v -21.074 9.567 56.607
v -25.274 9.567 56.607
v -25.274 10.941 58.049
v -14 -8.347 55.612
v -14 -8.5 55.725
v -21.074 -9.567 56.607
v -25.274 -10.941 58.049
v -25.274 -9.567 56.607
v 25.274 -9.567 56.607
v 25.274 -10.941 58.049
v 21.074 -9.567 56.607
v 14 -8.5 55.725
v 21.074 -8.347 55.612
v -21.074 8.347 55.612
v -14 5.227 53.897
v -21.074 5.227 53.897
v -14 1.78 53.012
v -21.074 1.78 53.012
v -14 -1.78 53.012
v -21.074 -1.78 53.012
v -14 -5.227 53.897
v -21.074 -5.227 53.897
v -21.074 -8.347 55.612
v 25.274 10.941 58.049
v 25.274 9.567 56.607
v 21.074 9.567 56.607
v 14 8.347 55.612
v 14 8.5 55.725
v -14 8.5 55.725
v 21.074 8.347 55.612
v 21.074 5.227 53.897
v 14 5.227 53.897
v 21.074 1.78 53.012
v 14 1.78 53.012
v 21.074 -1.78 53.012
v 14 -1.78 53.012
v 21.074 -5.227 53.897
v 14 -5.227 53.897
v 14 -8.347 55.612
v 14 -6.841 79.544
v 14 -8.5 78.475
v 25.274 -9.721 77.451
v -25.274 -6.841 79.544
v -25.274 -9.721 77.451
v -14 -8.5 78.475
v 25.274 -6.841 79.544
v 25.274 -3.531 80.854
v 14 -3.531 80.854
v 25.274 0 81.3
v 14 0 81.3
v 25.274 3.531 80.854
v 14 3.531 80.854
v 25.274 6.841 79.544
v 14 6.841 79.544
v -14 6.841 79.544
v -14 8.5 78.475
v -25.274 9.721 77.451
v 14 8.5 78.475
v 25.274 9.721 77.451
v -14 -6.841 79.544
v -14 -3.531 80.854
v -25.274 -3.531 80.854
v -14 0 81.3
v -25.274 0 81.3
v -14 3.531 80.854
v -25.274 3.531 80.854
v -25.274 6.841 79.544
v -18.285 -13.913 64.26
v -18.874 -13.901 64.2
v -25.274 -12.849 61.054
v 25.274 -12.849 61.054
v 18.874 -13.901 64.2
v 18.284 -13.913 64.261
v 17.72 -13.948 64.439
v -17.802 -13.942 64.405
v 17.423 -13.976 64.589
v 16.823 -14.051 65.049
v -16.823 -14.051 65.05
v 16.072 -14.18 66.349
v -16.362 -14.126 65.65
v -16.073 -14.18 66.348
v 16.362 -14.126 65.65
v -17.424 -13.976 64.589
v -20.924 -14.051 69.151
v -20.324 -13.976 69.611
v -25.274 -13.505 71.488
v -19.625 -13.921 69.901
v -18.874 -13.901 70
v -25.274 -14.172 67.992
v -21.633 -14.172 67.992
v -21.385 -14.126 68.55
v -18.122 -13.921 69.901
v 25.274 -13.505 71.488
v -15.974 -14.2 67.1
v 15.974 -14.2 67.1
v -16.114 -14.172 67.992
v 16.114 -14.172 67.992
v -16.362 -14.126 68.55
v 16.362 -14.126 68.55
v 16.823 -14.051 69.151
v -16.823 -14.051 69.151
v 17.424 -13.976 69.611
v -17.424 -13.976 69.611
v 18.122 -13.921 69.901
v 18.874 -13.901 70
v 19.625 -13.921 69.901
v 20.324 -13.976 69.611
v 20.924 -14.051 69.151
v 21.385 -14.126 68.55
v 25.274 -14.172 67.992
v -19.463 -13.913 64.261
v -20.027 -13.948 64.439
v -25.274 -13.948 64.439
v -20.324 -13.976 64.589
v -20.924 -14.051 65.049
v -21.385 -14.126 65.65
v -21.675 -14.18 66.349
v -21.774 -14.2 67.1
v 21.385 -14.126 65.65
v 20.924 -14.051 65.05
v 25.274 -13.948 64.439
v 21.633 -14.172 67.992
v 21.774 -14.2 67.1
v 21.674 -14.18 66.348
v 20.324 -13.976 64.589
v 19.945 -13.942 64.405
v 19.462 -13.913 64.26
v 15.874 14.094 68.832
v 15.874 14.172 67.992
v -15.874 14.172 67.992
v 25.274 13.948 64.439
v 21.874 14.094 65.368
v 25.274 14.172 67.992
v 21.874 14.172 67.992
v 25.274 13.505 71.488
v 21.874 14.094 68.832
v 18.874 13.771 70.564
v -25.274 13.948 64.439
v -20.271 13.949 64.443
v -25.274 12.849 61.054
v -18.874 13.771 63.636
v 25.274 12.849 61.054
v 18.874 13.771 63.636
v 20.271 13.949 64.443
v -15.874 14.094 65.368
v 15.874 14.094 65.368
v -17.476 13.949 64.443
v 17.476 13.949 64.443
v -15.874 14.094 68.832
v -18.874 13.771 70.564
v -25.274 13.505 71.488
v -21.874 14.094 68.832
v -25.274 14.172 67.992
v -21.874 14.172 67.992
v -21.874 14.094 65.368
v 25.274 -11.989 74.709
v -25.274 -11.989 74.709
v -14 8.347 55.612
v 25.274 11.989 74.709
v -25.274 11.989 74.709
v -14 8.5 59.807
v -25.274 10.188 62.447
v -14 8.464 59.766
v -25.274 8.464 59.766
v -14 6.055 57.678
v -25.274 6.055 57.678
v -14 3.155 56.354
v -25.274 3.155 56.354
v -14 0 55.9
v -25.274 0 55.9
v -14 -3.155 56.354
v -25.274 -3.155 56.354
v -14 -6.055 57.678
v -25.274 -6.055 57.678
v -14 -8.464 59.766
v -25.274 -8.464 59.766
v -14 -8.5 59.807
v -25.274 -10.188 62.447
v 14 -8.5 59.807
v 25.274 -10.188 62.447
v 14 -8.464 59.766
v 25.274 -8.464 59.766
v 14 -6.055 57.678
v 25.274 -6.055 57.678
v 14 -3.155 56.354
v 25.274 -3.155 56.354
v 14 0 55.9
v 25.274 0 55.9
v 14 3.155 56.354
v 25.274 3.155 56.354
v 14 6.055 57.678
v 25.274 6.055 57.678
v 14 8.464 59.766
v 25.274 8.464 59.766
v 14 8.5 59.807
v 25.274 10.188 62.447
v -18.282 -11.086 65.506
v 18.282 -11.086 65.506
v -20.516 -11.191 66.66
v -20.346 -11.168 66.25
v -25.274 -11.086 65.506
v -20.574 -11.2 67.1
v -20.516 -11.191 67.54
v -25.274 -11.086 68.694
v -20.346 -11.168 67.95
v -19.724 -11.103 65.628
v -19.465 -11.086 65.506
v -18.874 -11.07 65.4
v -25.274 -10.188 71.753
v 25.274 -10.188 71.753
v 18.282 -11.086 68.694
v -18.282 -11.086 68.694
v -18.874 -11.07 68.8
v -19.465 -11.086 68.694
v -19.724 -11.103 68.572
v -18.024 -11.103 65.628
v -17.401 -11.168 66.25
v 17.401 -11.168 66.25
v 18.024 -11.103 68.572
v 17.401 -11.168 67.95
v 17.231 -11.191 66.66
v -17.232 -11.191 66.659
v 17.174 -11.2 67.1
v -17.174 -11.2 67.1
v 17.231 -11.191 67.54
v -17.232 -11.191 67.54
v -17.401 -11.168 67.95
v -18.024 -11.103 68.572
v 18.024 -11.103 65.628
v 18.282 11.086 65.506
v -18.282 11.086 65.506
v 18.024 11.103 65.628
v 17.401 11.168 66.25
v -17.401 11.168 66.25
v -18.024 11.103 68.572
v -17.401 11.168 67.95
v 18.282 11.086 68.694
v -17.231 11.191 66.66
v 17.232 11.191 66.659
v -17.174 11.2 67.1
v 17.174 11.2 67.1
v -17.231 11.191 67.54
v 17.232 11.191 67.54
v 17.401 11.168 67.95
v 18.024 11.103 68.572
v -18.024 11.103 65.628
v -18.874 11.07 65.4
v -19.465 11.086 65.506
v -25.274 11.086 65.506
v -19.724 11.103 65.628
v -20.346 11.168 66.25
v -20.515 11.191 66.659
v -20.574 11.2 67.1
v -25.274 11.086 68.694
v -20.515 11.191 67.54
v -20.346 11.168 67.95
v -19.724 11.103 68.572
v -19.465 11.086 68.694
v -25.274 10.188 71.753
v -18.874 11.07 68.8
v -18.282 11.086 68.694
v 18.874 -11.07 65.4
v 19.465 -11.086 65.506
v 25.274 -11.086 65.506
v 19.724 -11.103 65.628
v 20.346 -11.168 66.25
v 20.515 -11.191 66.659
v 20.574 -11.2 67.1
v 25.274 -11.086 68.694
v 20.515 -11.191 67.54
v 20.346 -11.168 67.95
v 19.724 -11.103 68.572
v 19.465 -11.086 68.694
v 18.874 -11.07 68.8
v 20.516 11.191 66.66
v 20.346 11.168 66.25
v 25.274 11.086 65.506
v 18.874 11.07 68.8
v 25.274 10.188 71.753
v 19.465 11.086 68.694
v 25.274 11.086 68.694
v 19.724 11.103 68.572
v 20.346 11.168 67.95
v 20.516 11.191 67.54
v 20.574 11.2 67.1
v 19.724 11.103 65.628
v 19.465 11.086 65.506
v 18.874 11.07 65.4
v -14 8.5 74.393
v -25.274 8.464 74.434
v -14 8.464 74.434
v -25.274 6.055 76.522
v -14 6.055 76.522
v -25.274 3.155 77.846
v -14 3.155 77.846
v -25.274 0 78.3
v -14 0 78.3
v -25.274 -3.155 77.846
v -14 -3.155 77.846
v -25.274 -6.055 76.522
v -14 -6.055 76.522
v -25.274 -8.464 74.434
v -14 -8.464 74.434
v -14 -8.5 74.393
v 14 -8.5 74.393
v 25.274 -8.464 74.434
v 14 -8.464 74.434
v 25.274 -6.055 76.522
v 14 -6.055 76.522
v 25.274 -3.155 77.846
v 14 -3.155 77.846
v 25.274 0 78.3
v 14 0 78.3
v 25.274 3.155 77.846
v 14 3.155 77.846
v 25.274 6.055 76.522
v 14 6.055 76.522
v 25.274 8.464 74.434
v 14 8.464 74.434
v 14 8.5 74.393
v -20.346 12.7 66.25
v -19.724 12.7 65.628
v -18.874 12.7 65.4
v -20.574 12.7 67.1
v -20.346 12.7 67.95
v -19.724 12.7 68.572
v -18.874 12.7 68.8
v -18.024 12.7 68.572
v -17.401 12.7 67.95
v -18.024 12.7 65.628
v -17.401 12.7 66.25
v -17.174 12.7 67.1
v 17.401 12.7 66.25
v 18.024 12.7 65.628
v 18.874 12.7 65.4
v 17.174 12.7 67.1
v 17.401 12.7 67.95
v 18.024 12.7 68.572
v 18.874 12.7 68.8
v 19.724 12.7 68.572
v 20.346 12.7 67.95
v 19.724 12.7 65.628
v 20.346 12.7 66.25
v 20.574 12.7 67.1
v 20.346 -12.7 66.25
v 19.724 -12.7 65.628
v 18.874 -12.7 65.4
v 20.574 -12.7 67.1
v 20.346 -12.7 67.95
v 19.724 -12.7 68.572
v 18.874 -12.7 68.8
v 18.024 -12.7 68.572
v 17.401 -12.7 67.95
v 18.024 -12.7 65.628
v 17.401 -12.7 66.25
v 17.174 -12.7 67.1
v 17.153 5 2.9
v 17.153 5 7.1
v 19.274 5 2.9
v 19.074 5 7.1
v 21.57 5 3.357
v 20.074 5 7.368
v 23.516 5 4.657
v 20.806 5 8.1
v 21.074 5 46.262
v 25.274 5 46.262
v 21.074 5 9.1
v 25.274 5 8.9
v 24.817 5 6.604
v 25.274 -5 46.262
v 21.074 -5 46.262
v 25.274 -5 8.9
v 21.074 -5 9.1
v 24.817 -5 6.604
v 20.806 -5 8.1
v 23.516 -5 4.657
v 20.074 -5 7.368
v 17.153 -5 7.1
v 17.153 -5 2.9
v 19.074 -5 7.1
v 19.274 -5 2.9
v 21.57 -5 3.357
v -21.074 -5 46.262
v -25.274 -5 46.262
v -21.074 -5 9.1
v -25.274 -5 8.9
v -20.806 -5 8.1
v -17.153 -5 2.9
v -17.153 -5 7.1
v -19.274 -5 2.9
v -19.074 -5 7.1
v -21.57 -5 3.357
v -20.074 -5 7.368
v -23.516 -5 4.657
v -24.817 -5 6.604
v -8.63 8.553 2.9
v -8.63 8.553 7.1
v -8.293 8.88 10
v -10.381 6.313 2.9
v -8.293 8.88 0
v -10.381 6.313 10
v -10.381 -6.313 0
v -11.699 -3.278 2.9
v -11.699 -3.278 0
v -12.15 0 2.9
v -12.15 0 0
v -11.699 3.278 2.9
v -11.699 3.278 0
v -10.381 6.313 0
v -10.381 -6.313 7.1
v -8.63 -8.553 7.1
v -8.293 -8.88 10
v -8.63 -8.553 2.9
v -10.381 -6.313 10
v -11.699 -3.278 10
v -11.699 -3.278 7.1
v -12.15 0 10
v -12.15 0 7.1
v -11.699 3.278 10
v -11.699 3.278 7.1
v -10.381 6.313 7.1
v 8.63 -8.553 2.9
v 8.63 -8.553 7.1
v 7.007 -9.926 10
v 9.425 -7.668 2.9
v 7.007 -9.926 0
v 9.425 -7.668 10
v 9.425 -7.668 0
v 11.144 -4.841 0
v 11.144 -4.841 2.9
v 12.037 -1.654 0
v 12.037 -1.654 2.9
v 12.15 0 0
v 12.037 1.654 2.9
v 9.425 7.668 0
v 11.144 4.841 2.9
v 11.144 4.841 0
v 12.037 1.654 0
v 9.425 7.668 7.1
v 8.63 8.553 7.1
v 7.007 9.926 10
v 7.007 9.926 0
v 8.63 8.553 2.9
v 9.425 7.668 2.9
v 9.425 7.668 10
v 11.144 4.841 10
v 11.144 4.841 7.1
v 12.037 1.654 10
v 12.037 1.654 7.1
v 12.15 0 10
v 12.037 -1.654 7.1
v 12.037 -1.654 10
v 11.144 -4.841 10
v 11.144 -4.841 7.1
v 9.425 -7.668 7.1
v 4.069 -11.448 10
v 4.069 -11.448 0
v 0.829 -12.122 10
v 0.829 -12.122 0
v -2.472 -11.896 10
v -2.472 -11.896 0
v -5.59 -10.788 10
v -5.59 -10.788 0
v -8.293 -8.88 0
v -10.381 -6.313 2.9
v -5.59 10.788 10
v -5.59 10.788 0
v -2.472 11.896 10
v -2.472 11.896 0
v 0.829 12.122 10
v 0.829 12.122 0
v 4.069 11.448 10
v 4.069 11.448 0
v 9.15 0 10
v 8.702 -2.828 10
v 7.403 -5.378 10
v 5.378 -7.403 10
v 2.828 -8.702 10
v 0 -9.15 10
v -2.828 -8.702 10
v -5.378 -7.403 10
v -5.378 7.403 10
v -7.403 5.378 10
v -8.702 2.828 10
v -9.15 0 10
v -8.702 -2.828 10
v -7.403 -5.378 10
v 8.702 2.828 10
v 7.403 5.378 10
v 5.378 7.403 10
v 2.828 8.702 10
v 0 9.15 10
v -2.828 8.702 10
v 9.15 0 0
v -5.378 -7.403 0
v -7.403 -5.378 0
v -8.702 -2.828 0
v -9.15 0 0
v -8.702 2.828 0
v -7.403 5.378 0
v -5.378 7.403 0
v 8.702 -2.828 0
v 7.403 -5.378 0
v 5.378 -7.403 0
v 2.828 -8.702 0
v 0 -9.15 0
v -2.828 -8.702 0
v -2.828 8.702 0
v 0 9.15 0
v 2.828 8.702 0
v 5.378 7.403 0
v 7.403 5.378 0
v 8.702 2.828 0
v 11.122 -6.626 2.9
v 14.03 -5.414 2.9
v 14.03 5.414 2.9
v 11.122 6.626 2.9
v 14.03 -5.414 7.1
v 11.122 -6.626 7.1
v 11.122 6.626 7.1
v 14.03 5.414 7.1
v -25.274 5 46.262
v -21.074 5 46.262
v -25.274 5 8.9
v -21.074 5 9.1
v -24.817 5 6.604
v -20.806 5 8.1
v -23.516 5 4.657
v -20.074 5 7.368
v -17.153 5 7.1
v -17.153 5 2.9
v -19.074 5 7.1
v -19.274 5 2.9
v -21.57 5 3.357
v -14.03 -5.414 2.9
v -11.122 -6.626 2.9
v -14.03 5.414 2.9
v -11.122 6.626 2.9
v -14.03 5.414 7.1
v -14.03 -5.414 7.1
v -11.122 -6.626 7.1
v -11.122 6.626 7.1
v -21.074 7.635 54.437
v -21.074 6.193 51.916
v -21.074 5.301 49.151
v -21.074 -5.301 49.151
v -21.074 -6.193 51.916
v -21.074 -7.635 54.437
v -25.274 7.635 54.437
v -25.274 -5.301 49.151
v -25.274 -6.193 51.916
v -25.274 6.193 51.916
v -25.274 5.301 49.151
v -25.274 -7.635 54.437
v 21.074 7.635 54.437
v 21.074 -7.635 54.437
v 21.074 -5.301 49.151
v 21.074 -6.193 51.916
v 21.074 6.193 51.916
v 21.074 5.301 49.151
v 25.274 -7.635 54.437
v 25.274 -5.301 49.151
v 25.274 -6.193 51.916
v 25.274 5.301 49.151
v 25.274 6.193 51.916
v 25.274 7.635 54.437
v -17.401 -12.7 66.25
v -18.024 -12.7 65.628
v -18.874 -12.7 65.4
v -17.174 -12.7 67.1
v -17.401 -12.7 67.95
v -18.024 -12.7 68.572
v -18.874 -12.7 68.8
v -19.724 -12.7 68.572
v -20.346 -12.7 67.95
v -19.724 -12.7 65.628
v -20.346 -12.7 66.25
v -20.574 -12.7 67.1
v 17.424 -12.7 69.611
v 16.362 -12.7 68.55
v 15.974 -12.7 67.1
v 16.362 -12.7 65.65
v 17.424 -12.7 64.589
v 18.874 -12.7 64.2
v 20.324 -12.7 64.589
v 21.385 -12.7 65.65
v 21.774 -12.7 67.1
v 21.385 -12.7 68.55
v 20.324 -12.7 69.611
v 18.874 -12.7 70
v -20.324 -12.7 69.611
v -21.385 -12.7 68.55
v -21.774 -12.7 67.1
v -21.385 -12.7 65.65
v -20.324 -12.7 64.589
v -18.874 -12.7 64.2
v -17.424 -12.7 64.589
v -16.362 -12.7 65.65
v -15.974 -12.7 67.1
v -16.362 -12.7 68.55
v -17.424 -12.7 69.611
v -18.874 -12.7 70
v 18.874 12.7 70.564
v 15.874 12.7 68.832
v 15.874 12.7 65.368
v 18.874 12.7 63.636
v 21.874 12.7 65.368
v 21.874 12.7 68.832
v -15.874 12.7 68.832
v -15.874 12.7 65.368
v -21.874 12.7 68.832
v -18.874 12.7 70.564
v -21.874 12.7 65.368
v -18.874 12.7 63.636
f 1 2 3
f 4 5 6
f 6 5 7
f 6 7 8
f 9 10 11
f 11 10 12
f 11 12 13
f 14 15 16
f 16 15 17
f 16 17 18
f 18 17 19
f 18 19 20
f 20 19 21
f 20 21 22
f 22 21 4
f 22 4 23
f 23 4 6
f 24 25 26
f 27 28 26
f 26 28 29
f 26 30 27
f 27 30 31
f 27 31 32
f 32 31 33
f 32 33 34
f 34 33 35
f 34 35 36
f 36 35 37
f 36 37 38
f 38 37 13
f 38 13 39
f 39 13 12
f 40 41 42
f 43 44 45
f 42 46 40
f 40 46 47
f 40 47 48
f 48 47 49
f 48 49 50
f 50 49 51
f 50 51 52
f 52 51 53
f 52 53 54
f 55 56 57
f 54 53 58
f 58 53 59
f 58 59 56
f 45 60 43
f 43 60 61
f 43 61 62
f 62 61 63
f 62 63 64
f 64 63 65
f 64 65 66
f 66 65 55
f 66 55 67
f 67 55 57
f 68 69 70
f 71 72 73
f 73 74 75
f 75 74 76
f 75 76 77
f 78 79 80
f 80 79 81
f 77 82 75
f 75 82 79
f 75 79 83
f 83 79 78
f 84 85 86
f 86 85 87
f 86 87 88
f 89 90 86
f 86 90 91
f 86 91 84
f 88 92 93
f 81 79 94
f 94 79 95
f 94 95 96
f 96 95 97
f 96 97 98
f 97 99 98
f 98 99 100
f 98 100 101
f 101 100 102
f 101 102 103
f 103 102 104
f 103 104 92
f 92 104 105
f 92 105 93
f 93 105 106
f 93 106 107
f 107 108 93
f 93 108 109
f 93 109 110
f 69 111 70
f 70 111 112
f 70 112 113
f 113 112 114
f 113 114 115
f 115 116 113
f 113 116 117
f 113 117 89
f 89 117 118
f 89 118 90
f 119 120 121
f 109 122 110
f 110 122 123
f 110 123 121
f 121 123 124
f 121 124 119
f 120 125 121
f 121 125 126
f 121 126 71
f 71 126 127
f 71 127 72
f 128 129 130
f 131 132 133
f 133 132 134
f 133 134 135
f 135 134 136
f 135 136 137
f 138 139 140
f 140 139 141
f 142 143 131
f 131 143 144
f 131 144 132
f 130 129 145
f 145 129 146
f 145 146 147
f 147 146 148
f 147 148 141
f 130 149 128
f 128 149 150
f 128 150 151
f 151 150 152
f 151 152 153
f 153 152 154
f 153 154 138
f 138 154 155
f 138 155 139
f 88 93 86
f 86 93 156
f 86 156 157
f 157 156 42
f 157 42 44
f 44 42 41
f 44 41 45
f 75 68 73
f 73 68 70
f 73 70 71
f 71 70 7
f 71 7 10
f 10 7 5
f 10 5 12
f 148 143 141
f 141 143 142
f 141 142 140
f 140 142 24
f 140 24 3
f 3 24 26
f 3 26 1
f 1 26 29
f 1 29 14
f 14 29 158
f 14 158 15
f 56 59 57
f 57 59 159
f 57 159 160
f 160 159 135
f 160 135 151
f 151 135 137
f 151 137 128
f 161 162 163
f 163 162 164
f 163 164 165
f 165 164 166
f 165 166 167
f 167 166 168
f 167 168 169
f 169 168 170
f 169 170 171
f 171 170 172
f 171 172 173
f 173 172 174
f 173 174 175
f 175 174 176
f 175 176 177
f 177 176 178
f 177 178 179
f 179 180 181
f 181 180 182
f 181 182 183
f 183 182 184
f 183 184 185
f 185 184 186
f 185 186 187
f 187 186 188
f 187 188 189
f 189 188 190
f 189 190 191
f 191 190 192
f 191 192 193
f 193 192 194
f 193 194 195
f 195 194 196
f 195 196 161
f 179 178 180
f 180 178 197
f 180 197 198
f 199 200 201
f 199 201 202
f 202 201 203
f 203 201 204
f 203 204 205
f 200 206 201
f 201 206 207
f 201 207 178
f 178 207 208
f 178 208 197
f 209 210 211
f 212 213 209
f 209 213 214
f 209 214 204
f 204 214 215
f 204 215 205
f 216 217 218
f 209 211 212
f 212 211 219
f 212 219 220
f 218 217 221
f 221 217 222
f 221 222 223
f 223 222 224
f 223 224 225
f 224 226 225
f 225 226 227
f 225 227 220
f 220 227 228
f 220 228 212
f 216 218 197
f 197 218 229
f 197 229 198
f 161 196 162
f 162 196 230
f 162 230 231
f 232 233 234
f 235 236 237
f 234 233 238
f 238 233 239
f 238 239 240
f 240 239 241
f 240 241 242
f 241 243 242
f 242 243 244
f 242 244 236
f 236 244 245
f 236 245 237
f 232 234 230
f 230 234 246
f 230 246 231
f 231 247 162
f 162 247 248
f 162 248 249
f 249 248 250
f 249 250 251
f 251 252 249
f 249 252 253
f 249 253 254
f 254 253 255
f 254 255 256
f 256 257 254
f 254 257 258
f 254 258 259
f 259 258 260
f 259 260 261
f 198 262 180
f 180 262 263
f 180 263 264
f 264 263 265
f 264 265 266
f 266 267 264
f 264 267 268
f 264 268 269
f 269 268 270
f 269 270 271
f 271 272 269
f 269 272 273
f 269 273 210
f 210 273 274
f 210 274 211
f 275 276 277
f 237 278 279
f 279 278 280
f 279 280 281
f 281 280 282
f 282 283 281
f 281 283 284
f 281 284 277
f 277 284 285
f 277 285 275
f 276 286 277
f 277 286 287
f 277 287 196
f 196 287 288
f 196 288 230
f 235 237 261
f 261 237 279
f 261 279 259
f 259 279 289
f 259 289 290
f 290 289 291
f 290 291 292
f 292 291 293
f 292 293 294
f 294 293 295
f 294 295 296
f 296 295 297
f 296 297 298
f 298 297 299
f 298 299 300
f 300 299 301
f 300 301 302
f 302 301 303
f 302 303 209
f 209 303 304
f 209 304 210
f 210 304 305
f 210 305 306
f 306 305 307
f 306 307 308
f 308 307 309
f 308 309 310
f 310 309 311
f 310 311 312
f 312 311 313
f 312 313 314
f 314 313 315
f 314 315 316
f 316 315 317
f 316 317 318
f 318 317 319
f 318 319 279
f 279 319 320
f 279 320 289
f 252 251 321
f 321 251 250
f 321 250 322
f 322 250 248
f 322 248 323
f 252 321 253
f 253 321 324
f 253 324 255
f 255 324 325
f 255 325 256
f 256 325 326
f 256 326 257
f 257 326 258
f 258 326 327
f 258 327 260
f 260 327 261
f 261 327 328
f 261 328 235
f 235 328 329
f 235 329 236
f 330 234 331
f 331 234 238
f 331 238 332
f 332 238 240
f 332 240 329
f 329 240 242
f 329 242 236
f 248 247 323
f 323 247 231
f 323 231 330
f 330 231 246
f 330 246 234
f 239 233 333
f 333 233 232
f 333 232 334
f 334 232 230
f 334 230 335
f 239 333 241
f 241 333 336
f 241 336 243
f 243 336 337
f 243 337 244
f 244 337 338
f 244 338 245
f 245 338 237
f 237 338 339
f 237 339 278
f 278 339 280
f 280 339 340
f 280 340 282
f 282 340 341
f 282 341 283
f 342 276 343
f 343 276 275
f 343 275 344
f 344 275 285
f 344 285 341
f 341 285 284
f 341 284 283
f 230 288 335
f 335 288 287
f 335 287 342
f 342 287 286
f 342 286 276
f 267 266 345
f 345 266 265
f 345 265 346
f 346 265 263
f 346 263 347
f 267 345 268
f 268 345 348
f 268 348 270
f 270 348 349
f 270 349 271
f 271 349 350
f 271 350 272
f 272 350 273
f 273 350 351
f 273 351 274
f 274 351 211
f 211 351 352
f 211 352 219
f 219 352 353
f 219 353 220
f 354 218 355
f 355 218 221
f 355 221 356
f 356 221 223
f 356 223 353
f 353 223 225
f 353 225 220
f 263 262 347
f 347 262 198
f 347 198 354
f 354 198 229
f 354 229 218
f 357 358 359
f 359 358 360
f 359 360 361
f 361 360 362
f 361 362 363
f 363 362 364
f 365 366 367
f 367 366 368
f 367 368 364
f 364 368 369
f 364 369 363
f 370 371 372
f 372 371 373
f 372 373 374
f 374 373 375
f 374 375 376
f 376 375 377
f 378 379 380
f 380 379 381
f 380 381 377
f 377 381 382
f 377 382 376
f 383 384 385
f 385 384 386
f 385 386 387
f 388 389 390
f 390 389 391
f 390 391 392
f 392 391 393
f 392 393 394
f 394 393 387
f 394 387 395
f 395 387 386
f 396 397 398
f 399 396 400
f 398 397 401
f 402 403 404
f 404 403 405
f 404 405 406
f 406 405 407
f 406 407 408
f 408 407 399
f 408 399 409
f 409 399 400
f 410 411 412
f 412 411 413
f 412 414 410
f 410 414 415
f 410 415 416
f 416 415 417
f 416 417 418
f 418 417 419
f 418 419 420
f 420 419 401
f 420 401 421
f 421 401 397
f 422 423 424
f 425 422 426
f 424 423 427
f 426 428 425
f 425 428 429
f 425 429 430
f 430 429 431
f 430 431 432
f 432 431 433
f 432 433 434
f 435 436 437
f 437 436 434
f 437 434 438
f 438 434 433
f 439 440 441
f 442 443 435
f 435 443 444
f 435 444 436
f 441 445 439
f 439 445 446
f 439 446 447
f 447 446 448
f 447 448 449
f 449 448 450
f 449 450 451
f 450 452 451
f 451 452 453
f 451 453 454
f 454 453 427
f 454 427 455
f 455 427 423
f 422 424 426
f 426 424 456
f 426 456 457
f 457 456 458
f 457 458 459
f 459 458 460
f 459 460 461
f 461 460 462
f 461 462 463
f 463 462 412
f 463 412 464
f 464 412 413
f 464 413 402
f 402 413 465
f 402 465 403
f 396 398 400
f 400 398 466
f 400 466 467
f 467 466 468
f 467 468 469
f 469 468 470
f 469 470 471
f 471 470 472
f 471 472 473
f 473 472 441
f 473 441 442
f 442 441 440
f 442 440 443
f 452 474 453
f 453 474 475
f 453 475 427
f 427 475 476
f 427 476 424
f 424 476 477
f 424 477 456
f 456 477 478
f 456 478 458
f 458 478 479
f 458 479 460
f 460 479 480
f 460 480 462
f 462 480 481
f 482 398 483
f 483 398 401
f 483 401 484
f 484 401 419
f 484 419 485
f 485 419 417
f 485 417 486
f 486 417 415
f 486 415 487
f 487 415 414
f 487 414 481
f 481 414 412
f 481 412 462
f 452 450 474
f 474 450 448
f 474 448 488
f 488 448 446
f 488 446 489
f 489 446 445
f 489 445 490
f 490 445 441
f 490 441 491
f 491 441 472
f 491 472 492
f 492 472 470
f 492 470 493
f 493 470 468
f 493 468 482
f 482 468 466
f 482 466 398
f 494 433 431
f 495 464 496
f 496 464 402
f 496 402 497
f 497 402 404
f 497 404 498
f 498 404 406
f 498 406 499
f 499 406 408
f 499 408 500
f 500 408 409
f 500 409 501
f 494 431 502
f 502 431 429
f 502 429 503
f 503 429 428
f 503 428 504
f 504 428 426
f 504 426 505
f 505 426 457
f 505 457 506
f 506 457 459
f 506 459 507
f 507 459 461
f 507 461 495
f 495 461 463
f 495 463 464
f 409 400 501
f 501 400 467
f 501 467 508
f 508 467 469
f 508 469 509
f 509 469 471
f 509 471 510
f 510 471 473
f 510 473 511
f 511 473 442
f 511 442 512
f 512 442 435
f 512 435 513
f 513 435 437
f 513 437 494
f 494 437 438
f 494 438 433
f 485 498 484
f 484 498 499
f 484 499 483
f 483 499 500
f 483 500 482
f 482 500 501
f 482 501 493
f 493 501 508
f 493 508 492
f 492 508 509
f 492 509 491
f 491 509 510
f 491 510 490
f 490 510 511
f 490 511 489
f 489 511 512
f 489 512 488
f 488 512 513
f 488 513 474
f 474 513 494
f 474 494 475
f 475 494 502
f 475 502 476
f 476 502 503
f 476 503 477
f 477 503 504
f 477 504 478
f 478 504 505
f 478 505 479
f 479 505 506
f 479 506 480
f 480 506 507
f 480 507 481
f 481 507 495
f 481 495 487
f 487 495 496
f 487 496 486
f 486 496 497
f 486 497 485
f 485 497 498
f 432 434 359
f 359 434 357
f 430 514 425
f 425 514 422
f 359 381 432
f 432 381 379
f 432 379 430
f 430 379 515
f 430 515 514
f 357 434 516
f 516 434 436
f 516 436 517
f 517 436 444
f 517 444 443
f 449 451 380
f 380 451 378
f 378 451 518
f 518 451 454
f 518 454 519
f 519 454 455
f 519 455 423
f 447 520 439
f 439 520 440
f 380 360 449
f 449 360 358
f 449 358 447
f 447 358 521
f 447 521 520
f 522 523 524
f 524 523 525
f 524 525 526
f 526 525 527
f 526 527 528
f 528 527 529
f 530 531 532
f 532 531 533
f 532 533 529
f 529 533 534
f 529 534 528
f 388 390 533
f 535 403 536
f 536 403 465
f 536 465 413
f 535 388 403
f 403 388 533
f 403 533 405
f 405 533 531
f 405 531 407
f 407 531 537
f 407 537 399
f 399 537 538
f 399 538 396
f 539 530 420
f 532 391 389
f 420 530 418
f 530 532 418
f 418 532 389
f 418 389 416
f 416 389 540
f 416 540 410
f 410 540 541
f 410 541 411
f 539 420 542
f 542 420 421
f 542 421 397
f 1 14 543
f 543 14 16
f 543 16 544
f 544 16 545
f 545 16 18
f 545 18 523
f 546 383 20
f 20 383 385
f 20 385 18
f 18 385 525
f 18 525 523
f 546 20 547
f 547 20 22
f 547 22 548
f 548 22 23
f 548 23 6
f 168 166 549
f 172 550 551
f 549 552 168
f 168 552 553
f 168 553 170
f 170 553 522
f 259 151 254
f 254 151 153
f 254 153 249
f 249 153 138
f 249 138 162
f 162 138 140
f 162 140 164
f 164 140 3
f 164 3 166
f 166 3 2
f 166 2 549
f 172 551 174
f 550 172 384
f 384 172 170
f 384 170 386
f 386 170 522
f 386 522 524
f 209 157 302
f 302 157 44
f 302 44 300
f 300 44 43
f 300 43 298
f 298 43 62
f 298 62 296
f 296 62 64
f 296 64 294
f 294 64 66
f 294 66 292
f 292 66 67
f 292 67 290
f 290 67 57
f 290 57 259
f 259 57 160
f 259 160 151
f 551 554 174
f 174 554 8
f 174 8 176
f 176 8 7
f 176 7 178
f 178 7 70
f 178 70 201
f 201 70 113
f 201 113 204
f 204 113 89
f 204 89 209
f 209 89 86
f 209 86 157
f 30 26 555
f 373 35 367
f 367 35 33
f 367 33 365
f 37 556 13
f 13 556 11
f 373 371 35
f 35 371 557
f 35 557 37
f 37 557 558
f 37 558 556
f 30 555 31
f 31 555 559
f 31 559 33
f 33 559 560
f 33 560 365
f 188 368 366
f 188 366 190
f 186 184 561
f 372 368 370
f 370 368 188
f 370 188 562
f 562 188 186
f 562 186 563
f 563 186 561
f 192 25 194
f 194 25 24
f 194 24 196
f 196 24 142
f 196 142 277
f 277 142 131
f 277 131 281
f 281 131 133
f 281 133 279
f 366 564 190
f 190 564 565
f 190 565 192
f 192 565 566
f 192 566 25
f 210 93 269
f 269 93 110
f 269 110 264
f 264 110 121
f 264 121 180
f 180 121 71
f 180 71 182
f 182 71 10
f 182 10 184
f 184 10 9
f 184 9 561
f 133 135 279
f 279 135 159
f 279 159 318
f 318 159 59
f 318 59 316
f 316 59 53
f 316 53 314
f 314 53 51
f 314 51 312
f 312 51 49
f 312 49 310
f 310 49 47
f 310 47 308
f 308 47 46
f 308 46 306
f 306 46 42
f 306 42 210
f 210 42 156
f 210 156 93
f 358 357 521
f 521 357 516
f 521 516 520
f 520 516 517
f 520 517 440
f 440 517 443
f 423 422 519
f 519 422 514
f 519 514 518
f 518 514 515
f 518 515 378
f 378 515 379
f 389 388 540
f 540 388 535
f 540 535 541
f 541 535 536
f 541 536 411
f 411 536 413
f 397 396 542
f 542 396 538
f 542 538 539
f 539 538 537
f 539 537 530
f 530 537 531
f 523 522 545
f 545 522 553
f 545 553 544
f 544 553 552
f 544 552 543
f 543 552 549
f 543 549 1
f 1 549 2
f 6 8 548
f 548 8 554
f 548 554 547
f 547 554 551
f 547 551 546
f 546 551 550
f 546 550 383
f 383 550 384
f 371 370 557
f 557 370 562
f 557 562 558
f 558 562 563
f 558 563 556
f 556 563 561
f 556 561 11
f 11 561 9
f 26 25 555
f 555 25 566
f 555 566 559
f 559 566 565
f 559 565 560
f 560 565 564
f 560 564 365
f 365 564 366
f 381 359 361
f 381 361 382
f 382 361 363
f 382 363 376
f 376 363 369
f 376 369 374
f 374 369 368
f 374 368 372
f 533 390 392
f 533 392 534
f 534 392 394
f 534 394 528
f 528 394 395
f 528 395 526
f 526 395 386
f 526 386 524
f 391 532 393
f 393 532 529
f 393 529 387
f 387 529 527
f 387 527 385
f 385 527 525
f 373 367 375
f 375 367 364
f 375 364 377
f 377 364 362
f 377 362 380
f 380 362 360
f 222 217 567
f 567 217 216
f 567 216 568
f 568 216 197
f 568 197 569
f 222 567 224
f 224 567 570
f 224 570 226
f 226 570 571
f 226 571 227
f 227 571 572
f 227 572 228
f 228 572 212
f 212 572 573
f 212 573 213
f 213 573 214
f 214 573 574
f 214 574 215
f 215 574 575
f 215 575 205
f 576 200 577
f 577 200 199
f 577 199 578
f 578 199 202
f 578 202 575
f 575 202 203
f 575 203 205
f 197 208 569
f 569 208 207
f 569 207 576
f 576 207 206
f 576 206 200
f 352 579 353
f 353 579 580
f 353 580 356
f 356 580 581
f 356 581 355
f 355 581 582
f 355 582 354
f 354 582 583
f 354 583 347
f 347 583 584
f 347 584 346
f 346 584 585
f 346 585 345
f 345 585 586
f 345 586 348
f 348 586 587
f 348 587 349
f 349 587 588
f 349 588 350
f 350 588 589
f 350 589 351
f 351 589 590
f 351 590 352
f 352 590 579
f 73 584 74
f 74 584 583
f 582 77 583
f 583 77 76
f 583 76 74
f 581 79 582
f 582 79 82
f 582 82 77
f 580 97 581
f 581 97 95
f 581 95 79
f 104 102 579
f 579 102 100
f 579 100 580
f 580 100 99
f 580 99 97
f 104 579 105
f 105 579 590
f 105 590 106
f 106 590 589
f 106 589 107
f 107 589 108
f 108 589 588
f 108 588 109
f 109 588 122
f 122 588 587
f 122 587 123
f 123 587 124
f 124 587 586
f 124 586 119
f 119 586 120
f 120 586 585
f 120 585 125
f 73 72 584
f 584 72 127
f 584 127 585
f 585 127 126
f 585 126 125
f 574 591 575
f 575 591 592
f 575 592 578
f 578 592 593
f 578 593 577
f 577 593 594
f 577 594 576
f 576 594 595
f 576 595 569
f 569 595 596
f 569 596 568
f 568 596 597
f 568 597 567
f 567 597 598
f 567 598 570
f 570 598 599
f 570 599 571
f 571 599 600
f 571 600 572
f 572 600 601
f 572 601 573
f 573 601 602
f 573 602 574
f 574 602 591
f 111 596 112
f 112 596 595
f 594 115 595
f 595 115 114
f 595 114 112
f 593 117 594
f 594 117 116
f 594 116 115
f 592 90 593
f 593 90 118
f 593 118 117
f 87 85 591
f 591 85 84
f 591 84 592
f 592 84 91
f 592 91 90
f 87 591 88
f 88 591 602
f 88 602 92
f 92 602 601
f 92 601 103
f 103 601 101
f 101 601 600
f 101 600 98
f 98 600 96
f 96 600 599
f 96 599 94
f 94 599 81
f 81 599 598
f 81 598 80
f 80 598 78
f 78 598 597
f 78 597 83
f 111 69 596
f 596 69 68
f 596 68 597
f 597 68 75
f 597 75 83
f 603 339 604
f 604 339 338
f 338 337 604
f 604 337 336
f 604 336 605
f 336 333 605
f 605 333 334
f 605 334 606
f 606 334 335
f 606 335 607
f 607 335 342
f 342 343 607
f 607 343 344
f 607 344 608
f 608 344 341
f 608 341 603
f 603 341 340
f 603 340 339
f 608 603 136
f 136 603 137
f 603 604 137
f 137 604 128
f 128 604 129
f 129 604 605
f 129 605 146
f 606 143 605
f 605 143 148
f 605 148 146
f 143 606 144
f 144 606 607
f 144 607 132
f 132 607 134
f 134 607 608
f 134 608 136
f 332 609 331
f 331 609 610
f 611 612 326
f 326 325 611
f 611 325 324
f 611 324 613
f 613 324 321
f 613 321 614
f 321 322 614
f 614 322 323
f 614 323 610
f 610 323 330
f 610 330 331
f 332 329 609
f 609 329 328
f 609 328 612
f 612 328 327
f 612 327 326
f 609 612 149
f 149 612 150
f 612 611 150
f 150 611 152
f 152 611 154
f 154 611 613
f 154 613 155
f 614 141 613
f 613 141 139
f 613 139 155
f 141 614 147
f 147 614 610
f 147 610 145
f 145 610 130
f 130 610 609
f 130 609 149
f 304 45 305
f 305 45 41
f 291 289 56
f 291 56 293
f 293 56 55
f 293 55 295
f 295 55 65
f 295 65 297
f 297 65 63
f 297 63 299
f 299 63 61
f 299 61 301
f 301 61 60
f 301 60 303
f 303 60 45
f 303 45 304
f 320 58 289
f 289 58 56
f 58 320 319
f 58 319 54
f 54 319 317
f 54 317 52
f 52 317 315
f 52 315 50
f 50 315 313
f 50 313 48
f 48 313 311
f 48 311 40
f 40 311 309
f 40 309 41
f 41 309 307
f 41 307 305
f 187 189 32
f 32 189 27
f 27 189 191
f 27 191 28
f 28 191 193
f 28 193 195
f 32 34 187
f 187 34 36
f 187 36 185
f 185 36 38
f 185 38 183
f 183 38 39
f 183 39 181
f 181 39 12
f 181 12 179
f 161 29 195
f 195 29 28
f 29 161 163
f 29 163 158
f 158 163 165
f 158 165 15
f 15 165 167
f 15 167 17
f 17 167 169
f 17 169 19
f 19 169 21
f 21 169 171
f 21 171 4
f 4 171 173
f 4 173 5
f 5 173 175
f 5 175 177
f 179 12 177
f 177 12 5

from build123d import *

# Parameters (mm, degrees)
SKETCH1_R                = 12.15
SKETCH1_R_2              = 9.15
BOSS_EXTRUDE1_DEPTH      = 10
BOSS_EXTRUDE2_DEPTH      = 2.1
BOSS_EXTRUDE2_DEPTH_BACK = 2.1
SKETCH4_W                = 4.2
SKETCH4_H                = 10
BOSS_EXTRUDE3_DEPTH      = 53
FILLET1_R                = 12
SKETCH5_R                = 14.2
SKETCH5_R_2              = 11.2
BOSS_EXTRUDE4_DEPTH      = 50.547009
BOSS_EXTRUDE11_DEPTH     = 4.2
BOSS_EXTRUDE12_DEPTH     = 4.2
FILLET2_R                = 6
FILLET3_R                = 2
SKETCH10_R               = 11.2
CUT_EXTRUDE2_DEPTH       = 51.547008827
SKETCH15_R               = 1.7
CUT_EXTRUDE5_DEPTH       = 1
CUT_EXTRUDE5_DEPTH_BACK  = 29.4
SKETCH17_R               = 2.9
CUT_EXTRUDE6_DEPTH       = 1.5
CUT_EXTRUDE7_DEPTH       = 1.5
SKETCH19_W               = 28
SKETCH19_H               = 17
CUT_EXTRUDE8_DEPTH       = 26.4000001
CUT_EXTRUDE8_DEPTH_BACK  = 4


with BuildPart() as part:
    # Sketch1 → Boss-Extrude1 (new body)
    with BuildSketch(Plane.XY):
        Circle(SKETCH1_R)
        Circle(SKETCH1_R_2, mode=Mode.SUBTRACT)
    extrude(amount=BOSS_EXTRUDE1_DEPTH)

    # Sketch2 → Boss-Extrude2 (add, two sides)
    with BuildSketch(Plane.XY.offset(5)) as boss_extrude2_sk:
        with BuildLine():
            Line((11.073504414, 5), (21.073504414, 5))
            Line((21.073504414, 5), (21.073504414, -5))
            Line((21.073504414, -5), (11.073504414, -5))
            ThreePointArc((11.073504414, -5), (12.15, 0), (11.073504414, 5))
        make_face()
        with BuildLine():
            ThreePointArc((-11.073504414, 5), (-12.15, 0), (-11.073504414, -5))
            Line((-11.073504414, -5), (-21.073504414, -5))
            Line((-21.073504414, -5), (-21.073504414, 5))
            Line((-21.073504414, 5), (-11.073504414, 5))
        make_face()
    extrude(amount=BOSS_EXTRUDE2_DEPTH)
    extrude(boss_extrude2_sk.sketch, amount=-BOSS_EXTRUDE2_DEPTH_BACK)

    # Sketch4 → Boss-Extrude3 (add)
    with BuildSketch(Plane(origin=(0, 0, 2.9), x_dir=(-1, 0, 0), z_dir=(0, 0, -1))):
        with Locations((23.173504414, 0)):
            Rectangle(SKETCH4_W, SKETCH4_H)
        with Locations((-23.173504414, 0)):
            Rectangle(SKETCH4_W, SKETCH4_H)
    extrude(amount=-BOSS_EXTRUDE3_DEPTH)

    # Fillet1
    fillet1_edges = [part.edges().sort_by_distance(p)[0] for p in [
        (11.073504414, 5, 5),
        (11.073504414, -5, 5),
        (-11.073504414, 5, 5),
        (-11.073504414, -5, 5),
    ]]
    fillet(fillet1_edges, radius=FILLET1_R)



with BuildPart() as body_2:
    # Sketch5 → Boss-Extrude4 (new body)
    with BuildSketch(Plane.ZY.offset(25.273504414)):
        with Locations((67.1, 0)):
            Circle(SKETCH5_R)
        with Locations((67.1, 0)):
            Circle(SKETCH5_R_2, mode=Mode.SUBTRACT)
    extrude(amount=-BOSS_EXTRUDE4_DEPTH)


with BuildPart() as part_1:
    add(part.part)

    add(body_2.part)  # Boss-Extrude11 merges body 2
    # Sketch7 → Boss-Extrude11 (add)
    with BuildSketch(Plane.ZY.offset(25.273504414)):
        with BuildLine():
            Line((56.60689185, -9.567375887), (56.60689185, 9.567375887))
            ThreePointArc((56.60689185, 9.567375887), (51.915920178, 6.192643958), (46.261573956, 5))
            Line((46.261573956, 5), (46.261573956, -5))
            ThreePointArc((46.261573956, -5), (51.915920178, -6.192643958), (56.60689185, -9.567375887))
        make_face()
    extrude(amount=-BOSS_EXTRUDE11_DEPTH)

    # Sketch9 → Boss-Extrude12 (add)
    with BuildSketch(Plane(origin=(25.273504414, 0, 0), x_dir=(0, 0, -1), z_dir=(1, 0, 0))):
        with BuildLine():
            Line((-56.60689185, 9.567375887), (-56.60689185, -9.567375887))
            ThreePointArc((-56.60689185, -9.567375887), (-51.915920178, -6.192643958), (-46.261573956, -5))
            Line((-46.261573956, -5), (-46.261573956, 5))
            ThreePointArc((-46.261573956, 5), (-51.915920178, 6.192643958), (-56.60689185, 9.567375887))
        make_face()
    extrude(amount=-BOSS_EXTRUDE12_DEPTH)

    # Fillet2
    fillet2_edges = [part_1.edges().sort_by_distance(p)[0] for p in [
        (-25.273504414, 0, 2.9),
        (25.273504414, 0, 2.9),
    ]]
    fillet(fillet2_edges, radius=FILLET2_R)

    # Fillet3
    fillet3_edges = [part_1.edges().sort_by_distance(p)[0] for p in [
        (21.073504414, 0, 7.1),
        (-21.073504414, 0, 7.1),
    ]]
    fillet(fillet3_edges, radius=FILLET3_R)

    # Sketch10 → Cut-Extrude2 (cut, through all)
    with BuildSketch(Plane(origin=(25.273504414, 0, 0), x_dir=(0, 0, -1), z_dir=(1, 0, 0))):
        with Locations((-67.1, 0)):
            Circle(SKETCH10_R)
    extrude(amount=-CUT_EXTRUDE2_DEPTH, mode=Mode.SUBTRACT)

    # Sketch15 → Cut-Extrude5 (cut, two sides)
    with BuildSketch(Plane(origin=(0, -14.2, 0), x_dir=(-1, 0, 0), z_dir=(0, -1, 0))) as cut_extrude5_sk:
        with Locations((-18.873504414, -67.1)):
            Circle(SKETCH15_R)
        with Locations((18.873504414, -67.1)):
            Circle(SKETCH15_R)
    extrude(amount=CUT_EXTRUDE5_DEPTH, mode=Mode.SUBTRACT)
    extrude(cut_extrude5_sk.sketch, amount=-CUT_EXTRUDE5_DEPTH_BACK, mode=Mode.SUBTRACT)

    # Sketch17 → Cut-Extrude6 (cut)
    with BuildSketch(Plane(origin=(0, -14.2, 0), x_dir=(-1, 0, 0), z_dir=(0, -1, 0))):
        with Locations((-18.873504414, -67.1)):
            Circle(SKETCH17_R)
        with Locations((18.873504414, -67.1)):
            Circle(SKETCH17_R)
    extrude(amount=-CUT_EXTRUDE6_DEPTH, mode=Mode.SUBTRACT)

    # Sketch18 → Cut-Extrude7 (cut)
    with BuildSketch(Plane(origin=(0, 14.2, 0), x_dir=(1, 0, 0), z_dir=(0, 1, 0))):
        Polygon((-15.873504414, -68.832050808), (-15.873504414, -65.367949192), (-18.873504414, -63.635898385), (-21.873504414, -65.367949192), (-21.873504414, -68.832050808), (-18.873504414, -70.564101615), align=None)
        Polygon((21.873504414, -68.832050808), (21.873504414, -65.367949192), (18.873504414, -63.635898385), (15.873504414, -65.367949192), (15.873504414, -68.832050808), (18.873504414, -70.564101615), align=None)
    extrude(amount=-CUT_EXTRUDE7_DEPTH, mode=Mode.SUBTRACT)

    # Sketch19 → Cut-Extrude8 (cut, two sides)
    with BuildSketch(Plane.XY.offset(55.9)) as cut_extrude8_sk:
        Rectangle(SKETCH19_W, SKETCH19_H)
    extrude(amount=CUT_EXTRUDE8_DEPTH, mode=Mode.SUBTRACT)
    extrude(cut_extrude8_sk.sketch, amount=-CUT_EXTRUDE8_DEPTH_BACK, mode=Mode.SUBTRACT)


solid = part_1.part
